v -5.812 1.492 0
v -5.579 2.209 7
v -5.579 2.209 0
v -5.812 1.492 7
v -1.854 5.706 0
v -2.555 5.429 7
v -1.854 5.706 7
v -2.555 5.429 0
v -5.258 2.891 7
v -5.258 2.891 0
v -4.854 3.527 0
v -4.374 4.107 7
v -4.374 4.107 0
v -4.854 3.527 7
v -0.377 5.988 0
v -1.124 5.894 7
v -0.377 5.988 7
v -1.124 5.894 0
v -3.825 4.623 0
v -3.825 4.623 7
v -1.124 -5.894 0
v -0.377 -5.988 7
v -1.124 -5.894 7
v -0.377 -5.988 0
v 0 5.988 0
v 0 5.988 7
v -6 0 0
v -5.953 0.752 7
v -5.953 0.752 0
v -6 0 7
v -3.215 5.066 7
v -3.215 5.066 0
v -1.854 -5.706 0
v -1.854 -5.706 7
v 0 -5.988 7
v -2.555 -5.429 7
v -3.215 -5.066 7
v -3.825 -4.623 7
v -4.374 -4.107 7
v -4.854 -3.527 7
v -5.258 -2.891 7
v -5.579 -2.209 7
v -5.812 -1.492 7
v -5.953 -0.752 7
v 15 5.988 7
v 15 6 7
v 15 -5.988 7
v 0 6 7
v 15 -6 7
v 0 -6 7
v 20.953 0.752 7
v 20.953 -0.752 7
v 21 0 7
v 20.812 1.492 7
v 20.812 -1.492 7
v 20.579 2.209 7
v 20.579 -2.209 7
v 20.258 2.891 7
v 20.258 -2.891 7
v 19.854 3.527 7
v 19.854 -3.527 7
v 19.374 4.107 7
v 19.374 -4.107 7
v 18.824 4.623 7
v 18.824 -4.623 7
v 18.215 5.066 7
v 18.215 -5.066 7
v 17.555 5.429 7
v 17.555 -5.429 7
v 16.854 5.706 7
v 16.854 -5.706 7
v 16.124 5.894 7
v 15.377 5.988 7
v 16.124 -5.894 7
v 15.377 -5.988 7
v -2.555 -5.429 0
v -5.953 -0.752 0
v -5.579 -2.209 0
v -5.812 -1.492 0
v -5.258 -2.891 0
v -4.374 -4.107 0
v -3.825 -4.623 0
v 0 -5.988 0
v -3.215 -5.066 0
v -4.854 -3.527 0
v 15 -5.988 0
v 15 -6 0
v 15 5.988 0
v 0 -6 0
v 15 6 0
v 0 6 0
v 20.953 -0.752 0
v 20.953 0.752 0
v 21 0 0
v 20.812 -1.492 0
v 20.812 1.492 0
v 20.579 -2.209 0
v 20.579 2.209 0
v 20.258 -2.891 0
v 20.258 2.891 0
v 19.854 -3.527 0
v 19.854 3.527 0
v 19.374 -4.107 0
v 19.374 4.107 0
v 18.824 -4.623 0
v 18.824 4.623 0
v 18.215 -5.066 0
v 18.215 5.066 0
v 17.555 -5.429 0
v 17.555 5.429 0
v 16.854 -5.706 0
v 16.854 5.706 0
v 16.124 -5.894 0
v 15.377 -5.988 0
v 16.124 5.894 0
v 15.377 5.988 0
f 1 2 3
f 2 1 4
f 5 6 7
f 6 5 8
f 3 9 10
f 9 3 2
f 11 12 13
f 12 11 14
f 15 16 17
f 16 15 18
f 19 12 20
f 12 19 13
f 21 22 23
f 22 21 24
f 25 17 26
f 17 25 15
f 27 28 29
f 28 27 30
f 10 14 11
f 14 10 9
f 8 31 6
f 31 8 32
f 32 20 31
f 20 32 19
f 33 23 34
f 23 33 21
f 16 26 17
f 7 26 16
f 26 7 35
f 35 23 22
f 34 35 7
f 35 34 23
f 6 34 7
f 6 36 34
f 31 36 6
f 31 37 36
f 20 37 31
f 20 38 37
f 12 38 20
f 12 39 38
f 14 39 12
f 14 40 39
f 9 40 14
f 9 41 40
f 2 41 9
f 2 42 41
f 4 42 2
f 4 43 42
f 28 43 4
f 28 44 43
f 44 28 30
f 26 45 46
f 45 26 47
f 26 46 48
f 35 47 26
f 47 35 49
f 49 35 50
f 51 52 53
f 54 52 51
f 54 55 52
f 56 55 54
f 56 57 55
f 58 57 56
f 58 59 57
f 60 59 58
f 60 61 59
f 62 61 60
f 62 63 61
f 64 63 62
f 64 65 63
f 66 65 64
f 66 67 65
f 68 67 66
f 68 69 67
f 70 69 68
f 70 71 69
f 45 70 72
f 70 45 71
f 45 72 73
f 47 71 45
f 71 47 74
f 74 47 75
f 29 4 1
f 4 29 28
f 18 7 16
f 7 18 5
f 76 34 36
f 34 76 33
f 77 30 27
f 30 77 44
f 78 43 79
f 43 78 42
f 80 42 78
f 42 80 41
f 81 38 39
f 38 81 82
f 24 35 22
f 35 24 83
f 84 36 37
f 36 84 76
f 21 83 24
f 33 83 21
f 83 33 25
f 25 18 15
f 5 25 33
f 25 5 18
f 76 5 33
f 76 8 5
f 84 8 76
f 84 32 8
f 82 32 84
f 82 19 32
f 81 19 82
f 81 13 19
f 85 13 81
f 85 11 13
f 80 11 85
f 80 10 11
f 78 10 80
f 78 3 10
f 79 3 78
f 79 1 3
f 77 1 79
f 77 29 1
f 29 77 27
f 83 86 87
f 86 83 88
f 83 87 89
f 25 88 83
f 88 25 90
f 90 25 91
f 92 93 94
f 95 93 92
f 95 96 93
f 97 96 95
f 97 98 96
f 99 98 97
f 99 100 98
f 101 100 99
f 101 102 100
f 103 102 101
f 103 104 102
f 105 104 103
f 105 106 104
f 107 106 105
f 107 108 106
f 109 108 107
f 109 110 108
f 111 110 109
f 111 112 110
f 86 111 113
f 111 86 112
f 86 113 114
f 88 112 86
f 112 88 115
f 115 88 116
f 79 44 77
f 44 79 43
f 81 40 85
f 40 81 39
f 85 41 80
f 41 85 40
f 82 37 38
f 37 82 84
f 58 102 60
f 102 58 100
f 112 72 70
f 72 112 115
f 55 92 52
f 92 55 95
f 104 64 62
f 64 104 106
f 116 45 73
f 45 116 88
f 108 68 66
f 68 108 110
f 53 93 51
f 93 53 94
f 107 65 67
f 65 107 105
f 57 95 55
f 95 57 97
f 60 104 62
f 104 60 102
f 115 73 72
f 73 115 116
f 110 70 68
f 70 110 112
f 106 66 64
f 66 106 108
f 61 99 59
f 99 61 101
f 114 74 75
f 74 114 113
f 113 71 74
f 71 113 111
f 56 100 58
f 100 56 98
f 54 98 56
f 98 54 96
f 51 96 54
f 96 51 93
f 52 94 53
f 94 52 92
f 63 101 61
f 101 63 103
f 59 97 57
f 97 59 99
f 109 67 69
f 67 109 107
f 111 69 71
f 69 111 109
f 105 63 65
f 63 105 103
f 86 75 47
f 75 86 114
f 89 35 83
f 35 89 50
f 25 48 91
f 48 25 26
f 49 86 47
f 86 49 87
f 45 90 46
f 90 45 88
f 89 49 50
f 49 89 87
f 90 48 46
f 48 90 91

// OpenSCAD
$fn=50;

cylinder(7,12/2,12/2);
translate([15,0,0])cylinder(7,12/2,12/2);
translate([0,-6,0])cube([15,12,7]);
